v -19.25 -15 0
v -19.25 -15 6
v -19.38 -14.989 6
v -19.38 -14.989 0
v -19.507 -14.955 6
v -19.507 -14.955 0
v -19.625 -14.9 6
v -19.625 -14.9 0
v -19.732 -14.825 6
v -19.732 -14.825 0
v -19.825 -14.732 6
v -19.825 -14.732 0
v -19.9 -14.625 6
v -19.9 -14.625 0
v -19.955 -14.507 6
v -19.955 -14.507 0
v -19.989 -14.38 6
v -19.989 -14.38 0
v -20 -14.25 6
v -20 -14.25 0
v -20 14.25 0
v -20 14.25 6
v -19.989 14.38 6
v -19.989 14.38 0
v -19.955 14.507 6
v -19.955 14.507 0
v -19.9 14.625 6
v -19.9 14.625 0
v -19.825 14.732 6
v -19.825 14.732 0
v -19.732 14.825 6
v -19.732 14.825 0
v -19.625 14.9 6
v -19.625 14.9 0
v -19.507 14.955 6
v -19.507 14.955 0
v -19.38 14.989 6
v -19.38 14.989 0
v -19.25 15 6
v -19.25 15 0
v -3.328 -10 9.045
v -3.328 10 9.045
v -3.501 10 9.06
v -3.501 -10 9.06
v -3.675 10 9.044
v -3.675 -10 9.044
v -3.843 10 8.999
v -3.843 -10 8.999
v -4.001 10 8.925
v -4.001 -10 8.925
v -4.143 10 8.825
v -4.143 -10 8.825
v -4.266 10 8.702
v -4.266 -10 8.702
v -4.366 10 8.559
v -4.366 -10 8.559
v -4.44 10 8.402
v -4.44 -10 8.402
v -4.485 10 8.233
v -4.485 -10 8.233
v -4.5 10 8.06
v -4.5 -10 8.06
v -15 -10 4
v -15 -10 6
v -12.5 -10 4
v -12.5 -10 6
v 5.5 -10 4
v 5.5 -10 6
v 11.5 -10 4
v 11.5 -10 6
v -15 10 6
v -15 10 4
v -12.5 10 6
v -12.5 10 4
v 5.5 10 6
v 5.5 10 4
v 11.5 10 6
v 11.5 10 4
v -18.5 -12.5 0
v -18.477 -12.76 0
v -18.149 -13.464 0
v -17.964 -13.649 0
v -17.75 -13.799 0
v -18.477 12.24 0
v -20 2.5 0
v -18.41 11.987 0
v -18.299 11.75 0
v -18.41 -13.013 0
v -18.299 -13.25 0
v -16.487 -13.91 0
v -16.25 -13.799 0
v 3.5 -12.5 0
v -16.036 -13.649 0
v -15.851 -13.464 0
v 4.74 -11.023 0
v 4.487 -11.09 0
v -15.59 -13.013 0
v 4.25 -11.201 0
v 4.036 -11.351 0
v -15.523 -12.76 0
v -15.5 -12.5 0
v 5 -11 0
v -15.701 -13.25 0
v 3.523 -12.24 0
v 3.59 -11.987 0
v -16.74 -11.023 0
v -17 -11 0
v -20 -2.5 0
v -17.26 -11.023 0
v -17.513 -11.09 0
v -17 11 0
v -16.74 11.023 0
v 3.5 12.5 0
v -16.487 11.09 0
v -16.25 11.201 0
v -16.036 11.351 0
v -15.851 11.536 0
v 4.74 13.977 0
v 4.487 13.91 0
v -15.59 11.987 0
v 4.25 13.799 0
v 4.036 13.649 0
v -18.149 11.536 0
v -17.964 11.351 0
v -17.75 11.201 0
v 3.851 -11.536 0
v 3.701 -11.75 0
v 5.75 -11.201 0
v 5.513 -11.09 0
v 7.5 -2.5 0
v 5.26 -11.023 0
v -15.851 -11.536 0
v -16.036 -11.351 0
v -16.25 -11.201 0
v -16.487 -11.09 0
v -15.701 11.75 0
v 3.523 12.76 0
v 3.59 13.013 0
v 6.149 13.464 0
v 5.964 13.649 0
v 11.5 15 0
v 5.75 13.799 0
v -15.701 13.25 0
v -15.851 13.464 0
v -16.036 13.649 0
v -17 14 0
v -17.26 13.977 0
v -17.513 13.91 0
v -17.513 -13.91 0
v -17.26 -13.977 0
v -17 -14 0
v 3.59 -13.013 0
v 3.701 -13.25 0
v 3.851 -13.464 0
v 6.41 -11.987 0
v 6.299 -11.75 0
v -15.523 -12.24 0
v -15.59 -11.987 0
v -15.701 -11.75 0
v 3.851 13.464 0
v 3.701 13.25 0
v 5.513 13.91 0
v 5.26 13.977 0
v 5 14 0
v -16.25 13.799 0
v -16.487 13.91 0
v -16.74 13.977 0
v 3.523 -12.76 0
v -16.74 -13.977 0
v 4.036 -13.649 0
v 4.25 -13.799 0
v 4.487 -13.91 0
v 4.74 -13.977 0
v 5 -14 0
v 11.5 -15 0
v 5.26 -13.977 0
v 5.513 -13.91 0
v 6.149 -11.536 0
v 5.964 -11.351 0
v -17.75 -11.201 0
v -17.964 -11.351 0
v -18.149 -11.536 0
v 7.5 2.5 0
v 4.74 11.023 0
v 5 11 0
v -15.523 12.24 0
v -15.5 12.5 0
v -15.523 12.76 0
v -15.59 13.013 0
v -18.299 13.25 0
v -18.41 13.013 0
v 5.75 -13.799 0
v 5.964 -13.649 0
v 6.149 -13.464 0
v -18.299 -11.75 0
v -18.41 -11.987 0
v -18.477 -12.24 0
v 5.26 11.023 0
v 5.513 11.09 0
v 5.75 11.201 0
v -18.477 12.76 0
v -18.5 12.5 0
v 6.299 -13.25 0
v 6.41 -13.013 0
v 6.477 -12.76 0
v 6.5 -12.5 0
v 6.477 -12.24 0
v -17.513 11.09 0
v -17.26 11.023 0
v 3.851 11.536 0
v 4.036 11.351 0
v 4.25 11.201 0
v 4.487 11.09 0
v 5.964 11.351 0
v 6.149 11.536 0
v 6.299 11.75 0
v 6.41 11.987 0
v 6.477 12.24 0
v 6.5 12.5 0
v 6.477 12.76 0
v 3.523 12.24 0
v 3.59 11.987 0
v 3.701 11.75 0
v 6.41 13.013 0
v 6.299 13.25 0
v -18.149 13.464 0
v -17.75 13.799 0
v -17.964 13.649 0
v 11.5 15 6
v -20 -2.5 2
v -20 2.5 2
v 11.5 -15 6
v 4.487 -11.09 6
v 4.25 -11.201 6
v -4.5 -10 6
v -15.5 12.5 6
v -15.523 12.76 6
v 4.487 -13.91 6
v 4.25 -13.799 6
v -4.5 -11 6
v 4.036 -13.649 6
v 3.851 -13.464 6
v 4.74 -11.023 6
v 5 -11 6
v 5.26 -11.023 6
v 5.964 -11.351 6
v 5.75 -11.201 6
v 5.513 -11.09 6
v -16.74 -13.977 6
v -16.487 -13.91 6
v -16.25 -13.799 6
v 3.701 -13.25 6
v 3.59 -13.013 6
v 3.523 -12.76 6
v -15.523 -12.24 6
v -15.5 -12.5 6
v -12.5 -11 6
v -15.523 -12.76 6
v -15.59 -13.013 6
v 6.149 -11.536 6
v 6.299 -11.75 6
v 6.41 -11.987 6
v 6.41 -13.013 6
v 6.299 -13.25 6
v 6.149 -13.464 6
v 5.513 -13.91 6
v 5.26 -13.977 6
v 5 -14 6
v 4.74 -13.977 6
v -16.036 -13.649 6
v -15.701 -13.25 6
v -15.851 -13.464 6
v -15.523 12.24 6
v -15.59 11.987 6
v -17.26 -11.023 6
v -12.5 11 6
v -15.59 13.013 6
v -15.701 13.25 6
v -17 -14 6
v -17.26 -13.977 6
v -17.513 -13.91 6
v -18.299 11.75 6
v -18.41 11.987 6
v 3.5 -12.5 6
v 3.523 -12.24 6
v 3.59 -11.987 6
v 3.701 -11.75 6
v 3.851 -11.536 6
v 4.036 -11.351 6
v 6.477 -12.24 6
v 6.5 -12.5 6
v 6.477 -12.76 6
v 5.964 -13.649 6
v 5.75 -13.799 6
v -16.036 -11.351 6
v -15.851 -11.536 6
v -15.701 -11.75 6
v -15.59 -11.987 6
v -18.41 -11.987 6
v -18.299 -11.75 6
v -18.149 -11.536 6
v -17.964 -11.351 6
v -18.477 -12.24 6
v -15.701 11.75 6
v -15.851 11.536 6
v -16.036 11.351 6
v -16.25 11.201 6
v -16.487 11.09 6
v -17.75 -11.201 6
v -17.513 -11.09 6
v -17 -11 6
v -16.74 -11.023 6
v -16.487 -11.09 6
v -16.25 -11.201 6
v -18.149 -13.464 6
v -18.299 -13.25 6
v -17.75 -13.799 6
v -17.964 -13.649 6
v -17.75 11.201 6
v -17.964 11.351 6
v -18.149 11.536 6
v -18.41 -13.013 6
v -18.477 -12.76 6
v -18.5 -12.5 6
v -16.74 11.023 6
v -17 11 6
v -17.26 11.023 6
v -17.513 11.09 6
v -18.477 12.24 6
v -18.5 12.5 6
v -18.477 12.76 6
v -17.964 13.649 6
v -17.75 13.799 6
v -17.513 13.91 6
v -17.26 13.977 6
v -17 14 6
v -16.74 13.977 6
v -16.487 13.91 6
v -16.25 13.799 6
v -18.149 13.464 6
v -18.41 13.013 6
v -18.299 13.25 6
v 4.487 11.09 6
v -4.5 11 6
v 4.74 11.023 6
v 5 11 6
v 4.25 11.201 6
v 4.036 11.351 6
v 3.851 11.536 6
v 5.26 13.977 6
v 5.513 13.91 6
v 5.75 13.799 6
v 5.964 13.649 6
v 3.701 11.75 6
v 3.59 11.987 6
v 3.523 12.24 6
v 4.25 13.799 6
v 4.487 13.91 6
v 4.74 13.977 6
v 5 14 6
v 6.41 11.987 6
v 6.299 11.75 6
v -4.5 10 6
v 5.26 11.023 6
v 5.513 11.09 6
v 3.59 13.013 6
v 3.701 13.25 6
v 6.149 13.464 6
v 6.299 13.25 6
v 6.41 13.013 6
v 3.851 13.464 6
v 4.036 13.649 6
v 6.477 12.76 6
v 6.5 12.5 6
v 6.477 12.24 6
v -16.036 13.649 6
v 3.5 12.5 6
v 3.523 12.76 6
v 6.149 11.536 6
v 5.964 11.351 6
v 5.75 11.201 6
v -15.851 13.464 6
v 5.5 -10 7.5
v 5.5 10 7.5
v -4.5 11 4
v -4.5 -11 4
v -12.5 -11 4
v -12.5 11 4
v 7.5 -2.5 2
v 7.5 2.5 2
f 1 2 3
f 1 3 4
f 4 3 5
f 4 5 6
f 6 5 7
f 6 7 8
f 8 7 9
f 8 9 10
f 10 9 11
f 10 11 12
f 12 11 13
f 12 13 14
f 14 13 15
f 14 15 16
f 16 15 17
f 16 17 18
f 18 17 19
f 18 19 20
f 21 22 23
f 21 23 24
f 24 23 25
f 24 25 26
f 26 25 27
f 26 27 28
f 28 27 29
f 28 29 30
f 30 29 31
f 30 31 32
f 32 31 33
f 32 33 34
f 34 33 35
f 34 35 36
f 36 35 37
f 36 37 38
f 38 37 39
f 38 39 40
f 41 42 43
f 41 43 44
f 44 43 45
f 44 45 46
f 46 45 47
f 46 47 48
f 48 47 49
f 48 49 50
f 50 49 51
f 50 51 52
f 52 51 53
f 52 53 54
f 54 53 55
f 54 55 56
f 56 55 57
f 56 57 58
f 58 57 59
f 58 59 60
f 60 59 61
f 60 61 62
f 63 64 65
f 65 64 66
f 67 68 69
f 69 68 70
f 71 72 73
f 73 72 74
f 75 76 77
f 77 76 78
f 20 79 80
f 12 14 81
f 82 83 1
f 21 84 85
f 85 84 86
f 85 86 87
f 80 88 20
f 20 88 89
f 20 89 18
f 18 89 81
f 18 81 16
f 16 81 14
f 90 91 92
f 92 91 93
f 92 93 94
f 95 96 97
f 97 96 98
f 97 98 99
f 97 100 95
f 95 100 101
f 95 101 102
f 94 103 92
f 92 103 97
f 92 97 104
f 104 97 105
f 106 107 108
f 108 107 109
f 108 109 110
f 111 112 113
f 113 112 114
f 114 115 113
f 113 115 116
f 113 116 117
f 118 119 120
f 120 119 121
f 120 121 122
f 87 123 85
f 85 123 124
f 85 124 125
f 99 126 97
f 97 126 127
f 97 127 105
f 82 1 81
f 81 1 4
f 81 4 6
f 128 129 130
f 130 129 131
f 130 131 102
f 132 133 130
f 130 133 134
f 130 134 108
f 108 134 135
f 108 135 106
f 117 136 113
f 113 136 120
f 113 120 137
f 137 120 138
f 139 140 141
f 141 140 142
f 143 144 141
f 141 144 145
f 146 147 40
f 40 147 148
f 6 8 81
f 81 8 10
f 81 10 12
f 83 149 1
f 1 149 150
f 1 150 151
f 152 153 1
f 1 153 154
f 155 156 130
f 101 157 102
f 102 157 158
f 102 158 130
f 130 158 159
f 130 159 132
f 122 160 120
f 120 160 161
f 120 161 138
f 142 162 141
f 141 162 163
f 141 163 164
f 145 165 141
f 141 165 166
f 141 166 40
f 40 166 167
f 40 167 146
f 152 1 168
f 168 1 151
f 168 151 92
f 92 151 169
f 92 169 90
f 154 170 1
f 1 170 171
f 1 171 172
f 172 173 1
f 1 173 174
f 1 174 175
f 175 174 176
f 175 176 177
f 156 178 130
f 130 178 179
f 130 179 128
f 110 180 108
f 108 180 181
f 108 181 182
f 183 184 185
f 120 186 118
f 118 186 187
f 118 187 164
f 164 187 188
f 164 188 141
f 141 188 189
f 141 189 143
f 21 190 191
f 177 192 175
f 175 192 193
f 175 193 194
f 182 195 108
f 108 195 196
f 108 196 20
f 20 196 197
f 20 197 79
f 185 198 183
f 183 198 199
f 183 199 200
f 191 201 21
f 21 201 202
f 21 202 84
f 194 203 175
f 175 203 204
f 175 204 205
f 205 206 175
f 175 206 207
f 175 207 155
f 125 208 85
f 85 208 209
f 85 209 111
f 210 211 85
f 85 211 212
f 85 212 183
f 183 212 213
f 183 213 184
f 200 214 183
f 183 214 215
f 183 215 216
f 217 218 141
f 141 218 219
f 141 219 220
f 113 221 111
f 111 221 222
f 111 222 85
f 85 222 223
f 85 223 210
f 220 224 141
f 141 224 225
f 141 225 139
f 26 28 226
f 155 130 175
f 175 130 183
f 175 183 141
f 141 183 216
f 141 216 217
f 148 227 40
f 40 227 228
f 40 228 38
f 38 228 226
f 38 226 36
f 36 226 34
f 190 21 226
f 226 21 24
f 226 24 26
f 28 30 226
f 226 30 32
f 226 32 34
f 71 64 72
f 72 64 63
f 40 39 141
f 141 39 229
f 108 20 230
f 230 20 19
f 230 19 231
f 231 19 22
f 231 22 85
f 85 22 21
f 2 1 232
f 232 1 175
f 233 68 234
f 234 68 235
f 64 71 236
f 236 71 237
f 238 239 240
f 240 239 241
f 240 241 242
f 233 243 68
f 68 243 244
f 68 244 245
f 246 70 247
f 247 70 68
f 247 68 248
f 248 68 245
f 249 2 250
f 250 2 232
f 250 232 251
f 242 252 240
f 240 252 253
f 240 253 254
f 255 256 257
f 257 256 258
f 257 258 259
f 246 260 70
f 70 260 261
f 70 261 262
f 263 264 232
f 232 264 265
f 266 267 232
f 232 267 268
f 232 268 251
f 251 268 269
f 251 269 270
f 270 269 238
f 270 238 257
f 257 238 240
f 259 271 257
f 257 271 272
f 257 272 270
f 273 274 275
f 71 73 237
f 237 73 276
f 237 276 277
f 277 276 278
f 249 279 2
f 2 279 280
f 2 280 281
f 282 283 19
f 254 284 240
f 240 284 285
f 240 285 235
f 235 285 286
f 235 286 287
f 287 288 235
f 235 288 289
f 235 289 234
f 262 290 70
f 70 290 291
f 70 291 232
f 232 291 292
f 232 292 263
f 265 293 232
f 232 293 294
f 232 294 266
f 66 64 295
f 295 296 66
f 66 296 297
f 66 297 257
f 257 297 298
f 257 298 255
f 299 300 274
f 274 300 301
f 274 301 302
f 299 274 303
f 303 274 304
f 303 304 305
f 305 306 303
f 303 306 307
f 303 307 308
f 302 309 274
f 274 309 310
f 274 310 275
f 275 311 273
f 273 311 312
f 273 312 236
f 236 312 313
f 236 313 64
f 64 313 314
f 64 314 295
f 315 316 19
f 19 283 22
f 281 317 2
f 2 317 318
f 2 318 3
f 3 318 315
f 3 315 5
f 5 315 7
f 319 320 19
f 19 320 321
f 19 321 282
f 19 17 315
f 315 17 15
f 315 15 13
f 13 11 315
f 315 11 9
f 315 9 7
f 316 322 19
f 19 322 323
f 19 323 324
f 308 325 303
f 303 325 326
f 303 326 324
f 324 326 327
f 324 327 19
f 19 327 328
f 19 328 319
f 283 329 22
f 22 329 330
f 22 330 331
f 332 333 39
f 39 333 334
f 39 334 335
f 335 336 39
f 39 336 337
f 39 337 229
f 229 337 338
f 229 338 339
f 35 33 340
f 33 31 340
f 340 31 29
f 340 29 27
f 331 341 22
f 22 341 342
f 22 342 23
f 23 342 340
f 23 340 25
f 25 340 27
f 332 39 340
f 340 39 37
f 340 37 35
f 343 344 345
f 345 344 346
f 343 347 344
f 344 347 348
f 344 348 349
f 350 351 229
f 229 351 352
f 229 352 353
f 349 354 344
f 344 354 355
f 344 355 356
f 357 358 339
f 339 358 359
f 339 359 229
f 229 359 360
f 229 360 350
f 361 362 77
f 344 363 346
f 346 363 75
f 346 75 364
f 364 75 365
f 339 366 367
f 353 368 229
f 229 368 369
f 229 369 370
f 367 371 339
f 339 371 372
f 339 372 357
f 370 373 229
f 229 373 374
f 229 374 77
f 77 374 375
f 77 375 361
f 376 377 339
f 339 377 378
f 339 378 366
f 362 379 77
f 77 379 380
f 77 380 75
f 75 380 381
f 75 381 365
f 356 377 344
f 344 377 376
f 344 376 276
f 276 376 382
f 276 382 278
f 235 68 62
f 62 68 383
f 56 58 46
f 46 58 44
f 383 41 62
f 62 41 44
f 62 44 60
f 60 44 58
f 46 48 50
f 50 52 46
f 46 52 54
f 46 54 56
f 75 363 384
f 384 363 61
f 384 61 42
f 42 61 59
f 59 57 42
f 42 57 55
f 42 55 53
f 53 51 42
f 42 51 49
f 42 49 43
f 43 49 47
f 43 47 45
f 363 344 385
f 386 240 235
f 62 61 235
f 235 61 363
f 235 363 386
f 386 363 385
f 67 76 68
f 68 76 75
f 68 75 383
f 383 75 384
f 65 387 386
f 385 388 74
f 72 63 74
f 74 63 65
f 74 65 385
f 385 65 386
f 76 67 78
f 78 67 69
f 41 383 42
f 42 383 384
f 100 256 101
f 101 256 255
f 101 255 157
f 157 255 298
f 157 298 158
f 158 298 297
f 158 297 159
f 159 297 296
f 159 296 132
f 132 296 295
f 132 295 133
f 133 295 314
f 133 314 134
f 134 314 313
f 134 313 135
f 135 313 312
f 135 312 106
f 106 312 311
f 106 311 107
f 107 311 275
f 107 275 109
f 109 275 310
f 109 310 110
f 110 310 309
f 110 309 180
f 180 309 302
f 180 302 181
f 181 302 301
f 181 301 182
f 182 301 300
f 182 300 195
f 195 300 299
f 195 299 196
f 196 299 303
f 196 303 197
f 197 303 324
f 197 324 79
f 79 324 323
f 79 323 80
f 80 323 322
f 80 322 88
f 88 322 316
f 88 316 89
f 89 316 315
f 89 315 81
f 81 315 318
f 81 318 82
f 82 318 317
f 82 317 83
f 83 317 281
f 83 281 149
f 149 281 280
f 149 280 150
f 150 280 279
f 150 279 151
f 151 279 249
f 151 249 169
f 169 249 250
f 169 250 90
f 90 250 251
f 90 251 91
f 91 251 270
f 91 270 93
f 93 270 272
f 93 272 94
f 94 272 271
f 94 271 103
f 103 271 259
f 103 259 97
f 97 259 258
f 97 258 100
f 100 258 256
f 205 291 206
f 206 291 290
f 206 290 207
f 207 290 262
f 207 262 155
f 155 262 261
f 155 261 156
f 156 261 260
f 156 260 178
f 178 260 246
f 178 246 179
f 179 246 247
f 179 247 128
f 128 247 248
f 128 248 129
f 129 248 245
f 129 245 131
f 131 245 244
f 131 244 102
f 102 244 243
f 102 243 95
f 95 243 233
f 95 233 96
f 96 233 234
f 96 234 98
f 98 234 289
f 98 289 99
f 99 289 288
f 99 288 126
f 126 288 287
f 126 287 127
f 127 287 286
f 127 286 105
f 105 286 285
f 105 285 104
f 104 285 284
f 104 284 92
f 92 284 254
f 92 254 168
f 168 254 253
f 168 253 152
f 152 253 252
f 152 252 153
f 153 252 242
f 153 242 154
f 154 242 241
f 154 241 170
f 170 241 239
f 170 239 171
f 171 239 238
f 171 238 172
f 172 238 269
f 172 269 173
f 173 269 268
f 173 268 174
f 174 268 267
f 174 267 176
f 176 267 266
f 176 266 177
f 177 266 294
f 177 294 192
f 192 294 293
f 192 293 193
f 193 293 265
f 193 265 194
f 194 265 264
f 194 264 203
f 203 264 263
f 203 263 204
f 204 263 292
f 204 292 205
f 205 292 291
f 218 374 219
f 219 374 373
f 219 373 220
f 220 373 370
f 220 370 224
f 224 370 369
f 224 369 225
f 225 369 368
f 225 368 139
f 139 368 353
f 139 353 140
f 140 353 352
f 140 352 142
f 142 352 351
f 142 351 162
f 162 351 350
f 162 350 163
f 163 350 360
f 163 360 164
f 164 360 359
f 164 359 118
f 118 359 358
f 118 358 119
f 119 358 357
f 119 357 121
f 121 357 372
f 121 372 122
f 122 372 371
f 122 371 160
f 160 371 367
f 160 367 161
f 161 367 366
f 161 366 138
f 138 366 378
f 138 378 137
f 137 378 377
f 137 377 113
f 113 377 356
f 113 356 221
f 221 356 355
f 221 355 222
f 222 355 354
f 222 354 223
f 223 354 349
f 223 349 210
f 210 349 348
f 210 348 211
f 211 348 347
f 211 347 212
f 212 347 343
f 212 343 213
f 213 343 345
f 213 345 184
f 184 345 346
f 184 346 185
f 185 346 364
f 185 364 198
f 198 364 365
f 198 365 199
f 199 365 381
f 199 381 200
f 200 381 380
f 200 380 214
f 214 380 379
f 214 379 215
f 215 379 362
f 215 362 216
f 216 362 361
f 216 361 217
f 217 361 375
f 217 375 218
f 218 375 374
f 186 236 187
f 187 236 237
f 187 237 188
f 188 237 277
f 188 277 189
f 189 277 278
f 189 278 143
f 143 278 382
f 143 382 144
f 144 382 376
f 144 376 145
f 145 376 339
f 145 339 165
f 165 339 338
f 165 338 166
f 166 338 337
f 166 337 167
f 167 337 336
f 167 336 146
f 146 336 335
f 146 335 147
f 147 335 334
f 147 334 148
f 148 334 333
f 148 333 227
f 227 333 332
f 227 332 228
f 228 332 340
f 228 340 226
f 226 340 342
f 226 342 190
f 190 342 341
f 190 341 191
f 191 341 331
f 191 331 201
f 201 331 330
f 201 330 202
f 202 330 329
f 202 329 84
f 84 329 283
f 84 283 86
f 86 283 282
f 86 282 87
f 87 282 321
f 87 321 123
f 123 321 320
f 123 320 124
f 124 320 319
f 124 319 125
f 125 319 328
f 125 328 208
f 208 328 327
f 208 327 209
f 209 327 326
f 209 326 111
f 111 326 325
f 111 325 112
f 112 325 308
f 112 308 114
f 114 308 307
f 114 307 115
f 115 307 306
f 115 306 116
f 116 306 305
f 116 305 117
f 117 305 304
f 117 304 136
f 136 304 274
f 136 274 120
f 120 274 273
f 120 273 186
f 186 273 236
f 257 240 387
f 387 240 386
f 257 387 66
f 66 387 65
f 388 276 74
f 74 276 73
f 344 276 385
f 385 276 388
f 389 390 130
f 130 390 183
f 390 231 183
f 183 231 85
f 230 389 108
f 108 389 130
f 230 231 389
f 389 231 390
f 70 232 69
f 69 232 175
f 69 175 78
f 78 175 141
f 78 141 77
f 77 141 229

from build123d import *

# Parameters (mm, degrees)
SKETCH1_W                = 30
SKETCH1_H                = 20
BASE_PLATE_DEPTH         = 1
SIDE_WALLS_DEPTH         = 6
SKETCH3_W                = 10
SKETCH3_H                = 20
SWITCH_BLOCK_DEPTH       = 6.5
SKETCH11_W               = 10.5
SKETCH11_H               = 20
SKETCH11_W_2             = 9.5
THICKER_BODY_DEPTH       = 3
SWITCH_BLOCK_ANGLE_DEPTH = 20
SKETCH4_R                = 1.5
M2_SCREWS_DEPTH          = 6
FILLET1_R                = 1
FILLET2_R                = 0.5
FILLET3_R                = 0.5
FILLET4_R                = 0.75
FILLET5_R                = 0.75
SKETCH19_W               = 8
SKETCH19_H               = 22
SPACE_FOR_LEAVER_DEPTH   = 2
SKETCH20_W               = 27.5
SKETCH20_H               = 5
CUT_EXTRUDE1_DEPTH       = 2
CUT_EXTRUDE2_DEPTH       = 26.506893306
CUT_EXTRUDE2_DEPTH_BACK  = 26.506893306
SKETCH21_W               = 20.782145583
SKETCH21_H               = 41.62772639


with BuildPart() as part:
    # Sketch1 → Base Plate (new body)
    with BuildSketch(Plane.XY):
        Rectangle(SKETCH1_W, SKETCH1_H)
    extrude(amount=BASE_PLATE_DEPTH)

    # Sketch2 → Side Walls (add)
    with BuildSketch(Plane(origin=(0, 0, 0), x_dir=(1, 0, 0), z_dir=(0, 0, -1))):
        Polygon((15, 10), (-15, 10), (-15, -10), (15, -10), (15, -15), (-20, -15), (-20, 15), (15, 15), align=None)
    extrude(amount=-SIDE_WALLS_DEPTH)

    # Sketch3 → Switch Block (add)
    with BuildSketch(Plane.XY.offset(1)):
        with Locations((0.5, 0)):
            Rectangle(SKETCH3_W, SKETCH3_H)
    extrude(amount=SWITCH_BLOCK_DEPTH)

    # Sketch11 → Thicker Body (add)
    with BuildSketch(Plane.XY.offset(1)):
        with Locations((-9.75, 0)):
            Rectangle(SKETCH11_W, SKETCH11_H)
        with Locations((10.25, 0)):
            Rectangle(SKETCH11_W_2, SKETCH11_H)
    extrude(amount=THICKER_BODY_DEPTH)

    # Sketch5 → Switch Block Angle (add)
    with BuildSketch(Plane(origin=(0, 10, 0), x_dir=(-1, 0, 0), z_dir=(0, 1, 0))):
        Polygon((4.5, 7.5), (4.5, 9.25), (-5.5, 7.5), align=None)
    extrude(amount=-SWITCH_BLOCK_ANGLE_DEPTH)

    # Sketch4 → M2 Screws (cut)
    with BuildSketch(Plane.XY.offset(6)):
        with Locations((-17, -12.5)):
            Circle(SKETCH4_R)
        with Locations((5, -12.5)):
            Circle(SKETCH4_R)
        with Locations((5, 12.5)):
            Circle(SKETCH4_R)
        with Locations((-17, 12.5)):
            Circle(SKETCH4_R)
    extrude(amount=-M2_SCREWS_DEPTH, mode=Mode.SUBTRACT)

    # Fillet1
    fillet1_edges = [part.edges().sort_by_distance(p)[0] for p in [
        (-4.5, 0, 9.25),
    ]]
    fillet(fillet1_edges, radius=FILLET1_R)

    # Fillet2
    fillet2_edges = [part.edges().sort_by_distance(p)[0] for p in [
        (15, -15, 3),
    ]]
    fillet(fillet2_edges, radius=FILLET2_R)

    # Fillet3
    fillet3_edges = [part.edges().sort_by_distance(p)[0] for p in [
        (15, 15, 3),
    ]]
    fillet(fillet3_edges, radius=FILLET3_R)

    # Fillet4
    fillet4_edges = [part.edges().sort_by_distance(p)[0] for p in [
        (-20, 15, 3),
    ]]
    fillet(fillet4_edges, radius=FILLET4_R)

    # Fillet5
    fillet5_edges = [part.edges().sort_by_distance(p)[0] for p in [
        (-20, -15, 3),
    ]]
    fillet(fillet5_edges, radius=FILLET5_R)

    # Sketch19 → Space for LEaver (cut)
    with BuildSketch(Plane.XY.offset(6)):
        with Locations((-8.5, 0)):
            Rectangle(SKETCH19_W, SKETCH19_H)
    extrude(amount=-SPACE_FOR_LEAVER_DEPTH, mode=Mode.SUBTRACT)

    # Sketch20 → Cut-Extrude1 (cut)
    with BuildSketch(Plane(origin=(0, 0, 0), x_dir=(1, 0, 0), z_dir=(0, 0, -1))):
        with Locations((-6.25, 0)):
            Rectangle(SKETCH20_W, SKETCH20_H)
    extrude(amount=-CUT_EXTRUDE1_DEPTH, mode=Mode.SUBTRACT)

    # Sketch21 → Cut-Extrude2 (cut, two sides: drawn at the far end of the back side and taken through both)
    with BuildSketch(Plane.XY.offset(4).offset(-CUT_EXTRUDE2_DEPTH_BACK)):
        with Locations((21.891072792, -1.973183351)):
            Rectangle(SKETCH21_W, SKETCH21_H)
    extrude(amount=CUT_EXTRUDE2_DEPTH + CUT_EXTRUDE2_DEPTH_BACK, mode=Mode.SUBTRACT)


solid = part.part
